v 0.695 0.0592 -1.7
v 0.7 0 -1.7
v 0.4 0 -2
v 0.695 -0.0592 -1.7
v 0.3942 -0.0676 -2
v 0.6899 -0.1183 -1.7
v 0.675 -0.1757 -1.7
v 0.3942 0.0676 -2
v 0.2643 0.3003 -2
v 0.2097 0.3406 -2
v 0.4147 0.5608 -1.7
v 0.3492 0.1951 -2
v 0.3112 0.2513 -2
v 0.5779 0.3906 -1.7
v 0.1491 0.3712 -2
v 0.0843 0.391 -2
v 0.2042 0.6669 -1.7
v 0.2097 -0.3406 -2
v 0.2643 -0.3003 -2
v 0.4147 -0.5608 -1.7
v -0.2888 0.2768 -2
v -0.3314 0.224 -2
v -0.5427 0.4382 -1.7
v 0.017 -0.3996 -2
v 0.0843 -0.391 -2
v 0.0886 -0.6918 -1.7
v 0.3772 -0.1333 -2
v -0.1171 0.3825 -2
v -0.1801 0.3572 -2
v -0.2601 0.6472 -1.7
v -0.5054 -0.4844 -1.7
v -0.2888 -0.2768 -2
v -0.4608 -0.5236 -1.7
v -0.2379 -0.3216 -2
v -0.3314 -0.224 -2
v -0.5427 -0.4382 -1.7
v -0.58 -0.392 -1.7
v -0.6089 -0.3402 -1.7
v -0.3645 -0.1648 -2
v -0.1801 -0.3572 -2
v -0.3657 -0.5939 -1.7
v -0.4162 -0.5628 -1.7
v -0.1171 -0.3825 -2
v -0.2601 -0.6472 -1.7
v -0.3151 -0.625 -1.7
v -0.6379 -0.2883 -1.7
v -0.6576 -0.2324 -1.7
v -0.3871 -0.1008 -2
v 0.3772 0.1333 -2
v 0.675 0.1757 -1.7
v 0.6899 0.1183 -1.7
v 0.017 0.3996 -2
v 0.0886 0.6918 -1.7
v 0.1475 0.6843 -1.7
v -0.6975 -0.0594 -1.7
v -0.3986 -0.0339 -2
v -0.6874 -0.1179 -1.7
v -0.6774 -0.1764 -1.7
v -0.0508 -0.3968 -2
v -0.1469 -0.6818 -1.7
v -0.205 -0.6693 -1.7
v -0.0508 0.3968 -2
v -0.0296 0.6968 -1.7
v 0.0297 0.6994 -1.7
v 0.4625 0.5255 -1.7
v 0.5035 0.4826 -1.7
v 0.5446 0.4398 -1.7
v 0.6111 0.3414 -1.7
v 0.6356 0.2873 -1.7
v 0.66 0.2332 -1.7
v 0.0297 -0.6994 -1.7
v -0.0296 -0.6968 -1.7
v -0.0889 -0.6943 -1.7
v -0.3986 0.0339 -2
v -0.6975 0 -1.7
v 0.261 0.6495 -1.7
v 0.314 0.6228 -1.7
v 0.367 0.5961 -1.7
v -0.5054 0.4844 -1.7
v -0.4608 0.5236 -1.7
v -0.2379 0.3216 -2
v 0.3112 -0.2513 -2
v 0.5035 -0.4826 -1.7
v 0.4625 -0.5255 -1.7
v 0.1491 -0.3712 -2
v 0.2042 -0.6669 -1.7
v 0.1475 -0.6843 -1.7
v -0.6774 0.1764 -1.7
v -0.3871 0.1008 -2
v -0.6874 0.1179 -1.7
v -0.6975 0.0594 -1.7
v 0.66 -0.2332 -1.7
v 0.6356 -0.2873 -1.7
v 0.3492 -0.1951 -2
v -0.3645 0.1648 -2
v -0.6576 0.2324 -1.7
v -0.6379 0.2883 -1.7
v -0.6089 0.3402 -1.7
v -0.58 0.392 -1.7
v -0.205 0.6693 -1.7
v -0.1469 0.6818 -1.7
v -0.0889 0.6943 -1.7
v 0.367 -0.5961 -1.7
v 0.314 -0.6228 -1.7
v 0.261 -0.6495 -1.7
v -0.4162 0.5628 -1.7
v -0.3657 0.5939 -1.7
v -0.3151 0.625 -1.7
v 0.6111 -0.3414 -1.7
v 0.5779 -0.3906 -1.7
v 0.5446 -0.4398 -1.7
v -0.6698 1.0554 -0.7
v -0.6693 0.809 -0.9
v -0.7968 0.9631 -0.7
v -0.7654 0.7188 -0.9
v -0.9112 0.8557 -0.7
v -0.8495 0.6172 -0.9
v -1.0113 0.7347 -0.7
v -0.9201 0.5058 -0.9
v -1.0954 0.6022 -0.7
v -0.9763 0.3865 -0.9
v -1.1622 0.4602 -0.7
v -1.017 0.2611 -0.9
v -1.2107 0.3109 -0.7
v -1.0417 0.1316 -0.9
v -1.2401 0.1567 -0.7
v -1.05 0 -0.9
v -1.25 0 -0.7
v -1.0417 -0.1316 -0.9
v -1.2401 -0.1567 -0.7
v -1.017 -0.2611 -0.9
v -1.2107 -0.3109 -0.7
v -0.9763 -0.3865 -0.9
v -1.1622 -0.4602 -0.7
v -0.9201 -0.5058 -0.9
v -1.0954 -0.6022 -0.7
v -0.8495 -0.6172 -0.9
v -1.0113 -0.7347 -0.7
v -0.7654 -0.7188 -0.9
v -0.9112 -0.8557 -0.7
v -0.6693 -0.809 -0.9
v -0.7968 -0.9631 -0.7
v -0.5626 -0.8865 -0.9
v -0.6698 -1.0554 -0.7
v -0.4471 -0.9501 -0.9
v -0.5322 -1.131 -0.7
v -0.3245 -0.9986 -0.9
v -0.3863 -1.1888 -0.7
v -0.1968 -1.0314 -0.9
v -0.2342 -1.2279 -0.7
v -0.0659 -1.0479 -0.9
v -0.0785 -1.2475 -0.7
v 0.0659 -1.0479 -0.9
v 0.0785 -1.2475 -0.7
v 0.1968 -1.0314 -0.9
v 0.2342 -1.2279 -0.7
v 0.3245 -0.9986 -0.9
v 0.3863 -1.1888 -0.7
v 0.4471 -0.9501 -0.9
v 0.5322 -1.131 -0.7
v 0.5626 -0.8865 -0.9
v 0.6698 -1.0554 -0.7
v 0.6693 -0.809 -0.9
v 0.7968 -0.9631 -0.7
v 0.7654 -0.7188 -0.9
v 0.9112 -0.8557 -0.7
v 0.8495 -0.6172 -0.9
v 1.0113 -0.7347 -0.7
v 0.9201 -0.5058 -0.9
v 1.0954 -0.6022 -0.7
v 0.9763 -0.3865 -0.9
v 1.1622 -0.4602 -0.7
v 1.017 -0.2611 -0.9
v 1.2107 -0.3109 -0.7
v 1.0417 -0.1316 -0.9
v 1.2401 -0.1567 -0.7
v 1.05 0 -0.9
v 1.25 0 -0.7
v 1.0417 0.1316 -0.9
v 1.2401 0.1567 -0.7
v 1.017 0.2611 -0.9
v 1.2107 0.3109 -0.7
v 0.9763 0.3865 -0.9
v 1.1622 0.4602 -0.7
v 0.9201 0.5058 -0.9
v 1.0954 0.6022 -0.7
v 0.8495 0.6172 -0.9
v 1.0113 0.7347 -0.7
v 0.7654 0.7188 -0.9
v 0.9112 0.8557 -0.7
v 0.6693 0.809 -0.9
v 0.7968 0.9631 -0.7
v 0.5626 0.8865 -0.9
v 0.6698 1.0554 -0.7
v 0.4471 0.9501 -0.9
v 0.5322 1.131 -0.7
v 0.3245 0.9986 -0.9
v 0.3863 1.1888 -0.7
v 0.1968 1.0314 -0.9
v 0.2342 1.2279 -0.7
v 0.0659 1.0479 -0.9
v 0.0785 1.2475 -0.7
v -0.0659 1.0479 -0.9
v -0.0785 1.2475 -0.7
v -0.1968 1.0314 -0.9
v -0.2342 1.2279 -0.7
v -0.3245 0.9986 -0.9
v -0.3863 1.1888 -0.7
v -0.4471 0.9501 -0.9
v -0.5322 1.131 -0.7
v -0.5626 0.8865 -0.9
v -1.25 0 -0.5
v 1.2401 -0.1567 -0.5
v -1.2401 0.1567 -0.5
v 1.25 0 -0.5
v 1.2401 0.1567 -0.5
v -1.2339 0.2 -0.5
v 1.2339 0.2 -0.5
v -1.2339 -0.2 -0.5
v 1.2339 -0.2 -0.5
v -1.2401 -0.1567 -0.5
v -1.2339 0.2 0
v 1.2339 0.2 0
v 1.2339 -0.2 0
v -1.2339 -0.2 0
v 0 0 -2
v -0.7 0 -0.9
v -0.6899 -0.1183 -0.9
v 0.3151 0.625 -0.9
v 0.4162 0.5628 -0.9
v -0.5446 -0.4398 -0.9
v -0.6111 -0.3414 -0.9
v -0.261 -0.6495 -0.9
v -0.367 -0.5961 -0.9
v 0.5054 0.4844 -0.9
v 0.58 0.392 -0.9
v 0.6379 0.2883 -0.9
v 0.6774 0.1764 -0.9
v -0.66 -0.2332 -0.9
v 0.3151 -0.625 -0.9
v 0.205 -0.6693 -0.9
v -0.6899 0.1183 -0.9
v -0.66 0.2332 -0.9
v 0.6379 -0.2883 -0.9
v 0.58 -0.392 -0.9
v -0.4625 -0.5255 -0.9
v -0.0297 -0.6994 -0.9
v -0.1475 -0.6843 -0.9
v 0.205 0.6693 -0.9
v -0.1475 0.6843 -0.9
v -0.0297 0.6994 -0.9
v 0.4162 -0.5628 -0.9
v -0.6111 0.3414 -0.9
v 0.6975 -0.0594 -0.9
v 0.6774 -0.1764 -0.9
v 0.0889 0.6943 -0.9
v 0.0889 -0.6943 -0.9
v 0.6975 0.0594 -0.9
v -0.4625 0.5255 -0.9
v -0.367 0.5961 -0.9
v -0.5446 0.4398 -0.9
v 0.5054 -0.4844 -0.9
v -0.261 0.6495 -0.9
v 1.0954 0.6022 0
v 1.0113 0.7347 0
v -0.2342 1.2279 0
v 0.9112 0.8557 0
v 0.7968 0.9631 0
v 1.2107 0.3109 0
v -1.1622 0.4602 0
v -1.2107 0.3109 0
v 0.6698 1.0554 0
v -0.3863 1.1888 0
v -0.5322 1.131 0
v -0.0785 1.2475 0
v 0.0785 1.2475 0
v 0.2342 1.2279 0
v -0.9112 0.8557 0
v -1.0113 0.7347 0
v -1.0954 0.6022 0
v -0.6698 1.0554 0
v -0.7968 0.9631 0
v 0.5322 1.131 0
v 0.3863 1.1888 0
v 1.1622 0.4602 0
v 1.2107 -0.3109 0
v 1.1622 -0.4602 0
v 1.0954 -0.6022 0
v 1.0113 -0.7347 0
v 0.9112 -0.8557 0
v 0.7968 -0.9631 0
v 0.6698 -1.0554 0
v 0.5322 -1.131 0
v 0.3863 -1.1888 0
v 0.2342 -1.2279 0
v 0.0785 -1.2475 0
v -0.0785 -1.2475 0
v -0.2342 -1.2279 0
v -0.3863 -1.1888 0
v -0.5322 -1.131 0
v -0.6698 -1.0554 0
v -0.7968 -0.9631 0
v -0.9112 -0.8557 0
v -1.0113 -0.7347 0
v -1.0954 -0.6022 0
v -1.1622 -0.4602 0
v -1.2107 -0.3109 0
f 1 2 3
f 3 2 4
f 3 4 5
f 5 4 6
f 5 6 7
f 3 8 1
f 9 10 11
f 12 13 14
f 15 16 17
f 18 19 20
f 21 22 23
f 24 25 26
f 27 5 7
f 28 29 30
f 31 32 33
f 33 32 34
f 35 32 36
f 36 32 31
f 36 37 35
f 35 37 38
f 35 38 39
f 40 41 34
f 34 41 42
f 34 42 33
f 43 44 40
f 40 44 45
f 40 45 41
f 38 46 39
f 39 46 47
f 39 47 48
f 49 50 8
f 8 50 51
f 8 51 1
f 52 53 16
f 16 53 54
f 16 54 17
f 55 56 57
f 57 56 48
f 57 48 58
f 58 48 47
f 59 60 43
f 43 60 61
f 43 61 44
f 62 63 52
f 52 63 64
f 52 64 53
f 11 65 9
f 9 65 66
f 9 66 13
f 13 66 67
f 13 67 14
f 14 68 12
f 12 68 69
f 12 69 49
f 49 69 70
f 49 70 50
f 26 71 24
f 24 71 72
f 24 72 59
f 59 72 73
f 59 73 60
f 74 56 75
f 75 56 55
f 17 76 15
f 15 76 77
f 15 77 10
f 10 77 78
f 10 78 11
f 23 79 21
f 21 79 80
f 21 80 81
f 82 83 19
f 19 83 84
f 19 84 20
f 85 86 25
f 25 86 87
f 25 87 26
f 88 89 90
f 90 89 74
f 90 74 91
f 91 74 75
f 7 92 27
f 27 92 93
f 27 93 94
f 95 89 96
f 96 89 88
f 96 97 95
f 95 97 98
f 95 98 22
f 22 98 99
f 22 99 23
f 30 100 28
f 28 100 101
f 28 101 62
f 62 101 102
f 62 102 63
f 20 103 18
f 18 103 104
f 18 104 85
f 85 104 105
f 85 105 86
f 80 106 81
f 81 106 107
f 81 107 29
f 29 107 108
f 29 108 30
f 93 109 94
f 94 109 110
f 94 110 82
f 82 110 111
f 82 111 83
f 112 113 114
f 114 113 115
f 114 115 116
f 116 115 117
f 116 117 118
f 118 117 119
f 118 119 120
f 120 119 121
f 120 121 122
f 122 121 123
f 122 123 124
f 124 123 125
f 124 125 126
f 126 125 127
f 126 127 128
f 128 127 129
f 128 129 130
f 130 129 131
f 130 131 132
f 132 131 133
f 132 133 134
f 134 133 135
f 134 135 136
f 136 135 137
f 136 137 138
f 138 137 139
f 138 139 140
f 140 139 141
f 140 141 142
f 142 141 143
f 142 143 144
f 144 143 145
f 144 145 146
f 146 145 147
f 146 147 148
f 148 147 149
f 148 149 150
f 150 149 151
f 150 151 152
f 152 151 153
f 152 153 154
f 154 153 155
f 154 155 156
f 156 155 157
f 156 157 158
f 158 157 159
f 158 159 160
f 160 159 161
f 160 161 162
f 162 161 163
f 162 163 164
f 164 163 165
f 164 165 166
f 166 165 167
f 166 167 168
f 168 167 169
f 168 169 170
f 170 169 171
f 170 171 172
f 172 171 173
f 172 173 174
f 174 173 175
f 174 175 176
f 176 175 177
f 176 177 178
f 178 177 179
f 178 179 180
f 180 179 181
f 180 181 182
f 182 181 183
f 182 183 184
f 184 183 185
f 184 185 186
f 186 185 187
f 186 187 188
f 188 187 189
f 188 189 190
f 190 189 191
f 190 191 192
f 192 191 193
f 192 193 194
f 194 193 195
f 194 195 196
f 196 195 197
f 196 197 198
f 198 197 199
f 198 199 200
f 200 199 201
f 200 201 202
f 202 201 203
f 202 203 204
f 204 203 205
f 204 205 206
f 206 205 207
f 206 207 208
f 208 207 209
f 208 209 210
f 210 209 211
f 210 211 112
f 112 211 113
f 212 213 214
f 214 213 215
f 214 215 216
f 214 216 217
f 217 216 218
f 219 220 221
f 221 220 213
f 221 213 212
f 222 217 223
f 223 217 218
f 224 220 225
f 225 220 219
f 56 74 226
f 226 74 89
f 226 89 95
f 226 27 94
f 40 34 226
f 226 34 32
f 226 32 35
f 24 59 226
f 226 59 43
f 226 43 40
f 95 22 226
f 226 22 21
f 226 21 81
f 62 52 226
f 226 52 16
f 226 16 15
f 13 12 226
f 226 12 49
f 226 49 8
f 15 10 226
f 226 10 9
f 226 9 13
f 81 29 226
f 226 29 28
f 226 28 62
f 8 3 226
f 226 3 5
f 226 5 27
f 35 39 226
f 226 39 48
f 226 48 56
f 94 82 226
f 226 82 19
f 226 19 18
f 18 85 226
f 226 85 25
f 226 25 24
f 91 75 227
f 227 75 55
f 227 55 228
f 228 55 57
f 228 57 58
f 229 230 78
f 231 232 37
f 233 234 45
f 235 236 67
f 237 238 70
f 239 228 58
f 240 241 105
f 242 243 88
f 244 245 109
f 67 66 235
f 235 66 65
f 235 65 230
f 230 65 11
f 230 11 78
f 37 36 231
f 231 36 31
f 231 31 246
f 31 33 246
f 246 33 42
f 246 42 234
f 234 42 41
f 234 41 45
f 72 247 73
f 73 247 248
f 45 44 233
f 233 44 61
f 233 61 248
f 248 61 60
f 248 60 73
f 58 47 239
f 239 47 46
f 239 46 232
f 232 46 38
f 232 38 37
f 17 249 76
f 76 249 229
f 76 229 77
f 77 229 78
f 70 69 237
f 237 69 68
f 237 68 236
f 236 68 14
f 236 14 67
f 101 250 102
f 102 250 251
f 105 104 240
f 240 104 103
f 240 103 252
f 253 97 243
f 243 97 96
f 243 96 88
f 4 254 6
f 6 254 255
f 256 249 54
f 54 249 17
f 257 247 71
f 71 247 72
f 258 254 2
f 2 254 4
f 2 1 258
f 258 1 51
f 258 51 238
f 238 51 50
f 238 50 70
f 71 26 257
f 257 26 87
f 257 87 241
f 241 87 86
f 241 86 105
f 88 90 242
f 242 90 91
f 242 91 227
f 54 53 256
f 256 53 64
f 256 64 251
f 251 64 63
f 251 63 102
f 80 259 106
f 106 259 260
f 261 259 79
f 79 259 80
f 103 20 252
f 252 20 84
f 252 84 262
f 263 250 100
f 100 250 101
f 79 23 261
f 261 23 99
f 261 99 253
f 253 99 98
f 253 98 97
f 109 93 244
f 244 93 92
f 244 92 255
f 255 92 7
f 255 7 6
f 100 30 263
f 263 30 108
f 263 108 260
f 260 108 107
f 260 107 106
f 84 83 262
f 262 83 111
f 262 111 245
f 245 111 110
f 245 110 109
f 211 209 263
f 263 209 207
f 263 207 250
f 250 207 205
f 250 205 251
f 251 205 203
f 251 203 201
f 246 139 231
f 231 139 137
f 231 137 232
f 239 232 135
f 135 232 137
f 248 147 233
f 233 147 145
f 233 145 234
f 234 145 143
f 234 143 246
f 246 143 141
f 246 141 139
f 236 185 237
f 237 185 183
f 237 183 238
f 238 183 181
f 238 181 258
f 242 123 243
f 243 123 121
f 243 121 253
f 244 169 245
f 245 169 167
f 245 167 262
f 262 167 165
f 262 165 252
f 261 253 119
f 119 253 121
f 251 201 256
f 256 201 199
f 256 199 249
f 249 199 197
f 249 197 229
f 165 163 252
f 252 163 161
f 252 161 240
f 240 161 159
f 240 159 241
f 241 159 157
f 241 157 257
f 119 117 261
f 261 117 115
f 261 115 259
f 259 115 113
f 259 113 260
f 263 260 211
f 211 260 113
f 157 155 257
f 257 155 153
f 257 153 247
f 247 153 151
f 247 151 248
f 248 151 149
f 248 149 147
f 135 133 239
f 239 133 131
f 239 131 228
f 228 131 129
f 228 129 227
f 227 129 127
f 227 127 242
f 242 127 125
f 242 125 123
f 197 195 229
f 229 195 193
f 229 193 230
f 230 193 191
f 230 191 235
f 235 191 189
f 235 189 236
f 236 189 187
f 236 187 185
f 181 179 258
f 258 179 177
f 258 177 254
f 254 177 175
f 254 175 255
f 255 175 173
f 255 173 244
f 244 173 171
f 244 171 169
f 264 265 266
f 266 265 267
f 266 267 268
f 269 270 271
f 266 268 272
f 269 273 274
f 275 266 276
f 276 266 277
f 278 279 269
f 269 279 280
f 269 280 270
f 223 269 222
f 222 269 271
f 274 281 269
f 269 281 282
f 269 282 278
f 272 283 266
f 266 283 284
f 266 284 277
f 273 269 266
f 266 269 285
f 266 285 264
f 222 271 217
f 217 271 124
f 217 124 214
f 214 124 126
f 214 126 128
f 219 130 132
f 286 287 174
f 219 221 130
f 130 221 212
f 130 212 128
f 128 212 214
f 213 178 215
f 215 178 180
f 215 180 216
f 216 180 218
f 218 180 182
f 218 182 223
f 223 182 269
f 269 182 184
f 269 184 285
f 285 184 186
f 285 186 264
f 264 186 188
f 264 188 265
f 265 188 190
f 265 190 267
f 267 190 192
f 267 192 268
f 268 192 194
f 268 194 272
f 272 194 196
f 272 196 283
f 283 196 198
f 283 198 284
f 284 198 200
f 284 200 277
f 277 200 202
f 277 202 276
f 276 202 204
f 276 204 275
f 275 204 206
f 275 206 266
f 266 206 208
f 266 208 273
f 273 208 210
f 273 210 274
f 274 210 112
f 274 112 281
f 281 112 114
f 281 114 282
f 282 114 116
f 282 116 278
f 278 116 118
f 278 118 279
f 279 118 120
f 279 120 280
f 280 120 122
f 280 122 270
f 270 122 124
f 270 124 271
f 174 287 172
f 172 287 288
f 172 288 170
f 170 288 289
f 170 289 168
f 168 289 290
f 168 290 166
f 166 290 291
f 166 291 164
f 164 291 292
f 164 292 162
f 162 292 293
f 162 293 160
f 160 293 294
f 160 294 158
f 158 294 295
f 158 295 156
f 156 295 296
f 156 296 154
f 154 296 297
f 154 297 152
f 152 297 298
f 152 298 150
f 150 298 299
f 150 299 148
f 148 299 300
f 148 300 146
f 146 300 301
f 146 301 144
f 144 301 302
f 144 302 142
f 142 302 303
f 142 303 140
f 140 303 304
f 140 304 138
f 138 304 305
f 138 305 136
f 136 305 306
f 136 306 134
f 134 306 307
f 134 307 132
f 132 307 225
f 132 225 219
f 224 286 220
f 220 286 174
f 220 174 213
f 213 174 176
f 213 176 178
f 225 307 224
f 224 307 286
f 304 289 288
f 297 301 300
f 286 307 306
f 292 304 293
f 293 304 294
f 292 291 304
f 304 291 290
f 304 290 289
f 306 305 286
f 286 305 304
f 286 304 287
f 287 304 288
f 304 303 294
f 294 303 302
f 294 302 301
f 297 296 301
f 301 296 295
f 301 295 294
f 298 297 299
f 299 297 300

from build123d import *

# Parameters (mm, degrees)
SKETCH1_R           = 1.25
BOSS_EXTRUDE1_DEPTH = 2
SKETCH2_OUTSIDE_W   = 5.312
SKETCH2_OUTSIDE_H   = 5.312
SKETCH2_OUTSIDE_R   = 0.7
CUT_EXTRUDE1_DEPTH  = 1.1
SKETCH3_W           = 2.7
SKETCH3_H           = 0.4
CUT_EXTRUDE2_DEPTH  = 0.5
CHAMFER1_SIZE       = 0.2
CHAMFER2_SIZE       = 0.3


with BuildPart() as part:
    # Sketch1 → Boss-Extrude1 (new body)
    with BuildSketch(Plane.XY):
        Circle(SKETCH1_R)
    extrude(amount=-BOSS_EXTRUDE1_DEPTH)

    # Sketch2 outside → Cut-Extrude1 (cut)
    with BuildSketch(Plane(origin=(0, 0, -2), x_dir=(-1, 0, 0), z_dir=(0, 0, -1))):
        Rectangle(SKETCH2_OUTSIDE_W, SKETCH2_OUTSIDE_H)
        Circle(SKETCH2_OUTSIDE_R, mode=Mode.SUBTRACT)
    extrude(amount=-CUT_EXTRUDE1_DEPTH, mode=Mode.SUBTRACT)

    # Sketch3 → Cut-Extrude2 (cut)
    with BuildSketch(Plane.XY):
        Rectangle(SKETCH3_W, SKETCH3_H)
    extrude(amount=-CUT_EXTRUDE2_DEPTH, mode=Mode.SUBTRACT)

    # Chamfer1
    chamfer1_edges = [part.edges().sort_by_distance(p)[0] for p in [
        (-1.25, 0, -0.9),
    ]]
    chamfer(chamfer1_edges, length=CHAMFER1_SIZE)

    # Chamfer2
    chamfer2_edges = [part.edges().sort_by_distance(p)[0] for p in [
        (0.7, 0, -2),
    ]]
    chamfer(chamfer2_edges, length=CHAMFER2_SIZE)


solid = part.part
